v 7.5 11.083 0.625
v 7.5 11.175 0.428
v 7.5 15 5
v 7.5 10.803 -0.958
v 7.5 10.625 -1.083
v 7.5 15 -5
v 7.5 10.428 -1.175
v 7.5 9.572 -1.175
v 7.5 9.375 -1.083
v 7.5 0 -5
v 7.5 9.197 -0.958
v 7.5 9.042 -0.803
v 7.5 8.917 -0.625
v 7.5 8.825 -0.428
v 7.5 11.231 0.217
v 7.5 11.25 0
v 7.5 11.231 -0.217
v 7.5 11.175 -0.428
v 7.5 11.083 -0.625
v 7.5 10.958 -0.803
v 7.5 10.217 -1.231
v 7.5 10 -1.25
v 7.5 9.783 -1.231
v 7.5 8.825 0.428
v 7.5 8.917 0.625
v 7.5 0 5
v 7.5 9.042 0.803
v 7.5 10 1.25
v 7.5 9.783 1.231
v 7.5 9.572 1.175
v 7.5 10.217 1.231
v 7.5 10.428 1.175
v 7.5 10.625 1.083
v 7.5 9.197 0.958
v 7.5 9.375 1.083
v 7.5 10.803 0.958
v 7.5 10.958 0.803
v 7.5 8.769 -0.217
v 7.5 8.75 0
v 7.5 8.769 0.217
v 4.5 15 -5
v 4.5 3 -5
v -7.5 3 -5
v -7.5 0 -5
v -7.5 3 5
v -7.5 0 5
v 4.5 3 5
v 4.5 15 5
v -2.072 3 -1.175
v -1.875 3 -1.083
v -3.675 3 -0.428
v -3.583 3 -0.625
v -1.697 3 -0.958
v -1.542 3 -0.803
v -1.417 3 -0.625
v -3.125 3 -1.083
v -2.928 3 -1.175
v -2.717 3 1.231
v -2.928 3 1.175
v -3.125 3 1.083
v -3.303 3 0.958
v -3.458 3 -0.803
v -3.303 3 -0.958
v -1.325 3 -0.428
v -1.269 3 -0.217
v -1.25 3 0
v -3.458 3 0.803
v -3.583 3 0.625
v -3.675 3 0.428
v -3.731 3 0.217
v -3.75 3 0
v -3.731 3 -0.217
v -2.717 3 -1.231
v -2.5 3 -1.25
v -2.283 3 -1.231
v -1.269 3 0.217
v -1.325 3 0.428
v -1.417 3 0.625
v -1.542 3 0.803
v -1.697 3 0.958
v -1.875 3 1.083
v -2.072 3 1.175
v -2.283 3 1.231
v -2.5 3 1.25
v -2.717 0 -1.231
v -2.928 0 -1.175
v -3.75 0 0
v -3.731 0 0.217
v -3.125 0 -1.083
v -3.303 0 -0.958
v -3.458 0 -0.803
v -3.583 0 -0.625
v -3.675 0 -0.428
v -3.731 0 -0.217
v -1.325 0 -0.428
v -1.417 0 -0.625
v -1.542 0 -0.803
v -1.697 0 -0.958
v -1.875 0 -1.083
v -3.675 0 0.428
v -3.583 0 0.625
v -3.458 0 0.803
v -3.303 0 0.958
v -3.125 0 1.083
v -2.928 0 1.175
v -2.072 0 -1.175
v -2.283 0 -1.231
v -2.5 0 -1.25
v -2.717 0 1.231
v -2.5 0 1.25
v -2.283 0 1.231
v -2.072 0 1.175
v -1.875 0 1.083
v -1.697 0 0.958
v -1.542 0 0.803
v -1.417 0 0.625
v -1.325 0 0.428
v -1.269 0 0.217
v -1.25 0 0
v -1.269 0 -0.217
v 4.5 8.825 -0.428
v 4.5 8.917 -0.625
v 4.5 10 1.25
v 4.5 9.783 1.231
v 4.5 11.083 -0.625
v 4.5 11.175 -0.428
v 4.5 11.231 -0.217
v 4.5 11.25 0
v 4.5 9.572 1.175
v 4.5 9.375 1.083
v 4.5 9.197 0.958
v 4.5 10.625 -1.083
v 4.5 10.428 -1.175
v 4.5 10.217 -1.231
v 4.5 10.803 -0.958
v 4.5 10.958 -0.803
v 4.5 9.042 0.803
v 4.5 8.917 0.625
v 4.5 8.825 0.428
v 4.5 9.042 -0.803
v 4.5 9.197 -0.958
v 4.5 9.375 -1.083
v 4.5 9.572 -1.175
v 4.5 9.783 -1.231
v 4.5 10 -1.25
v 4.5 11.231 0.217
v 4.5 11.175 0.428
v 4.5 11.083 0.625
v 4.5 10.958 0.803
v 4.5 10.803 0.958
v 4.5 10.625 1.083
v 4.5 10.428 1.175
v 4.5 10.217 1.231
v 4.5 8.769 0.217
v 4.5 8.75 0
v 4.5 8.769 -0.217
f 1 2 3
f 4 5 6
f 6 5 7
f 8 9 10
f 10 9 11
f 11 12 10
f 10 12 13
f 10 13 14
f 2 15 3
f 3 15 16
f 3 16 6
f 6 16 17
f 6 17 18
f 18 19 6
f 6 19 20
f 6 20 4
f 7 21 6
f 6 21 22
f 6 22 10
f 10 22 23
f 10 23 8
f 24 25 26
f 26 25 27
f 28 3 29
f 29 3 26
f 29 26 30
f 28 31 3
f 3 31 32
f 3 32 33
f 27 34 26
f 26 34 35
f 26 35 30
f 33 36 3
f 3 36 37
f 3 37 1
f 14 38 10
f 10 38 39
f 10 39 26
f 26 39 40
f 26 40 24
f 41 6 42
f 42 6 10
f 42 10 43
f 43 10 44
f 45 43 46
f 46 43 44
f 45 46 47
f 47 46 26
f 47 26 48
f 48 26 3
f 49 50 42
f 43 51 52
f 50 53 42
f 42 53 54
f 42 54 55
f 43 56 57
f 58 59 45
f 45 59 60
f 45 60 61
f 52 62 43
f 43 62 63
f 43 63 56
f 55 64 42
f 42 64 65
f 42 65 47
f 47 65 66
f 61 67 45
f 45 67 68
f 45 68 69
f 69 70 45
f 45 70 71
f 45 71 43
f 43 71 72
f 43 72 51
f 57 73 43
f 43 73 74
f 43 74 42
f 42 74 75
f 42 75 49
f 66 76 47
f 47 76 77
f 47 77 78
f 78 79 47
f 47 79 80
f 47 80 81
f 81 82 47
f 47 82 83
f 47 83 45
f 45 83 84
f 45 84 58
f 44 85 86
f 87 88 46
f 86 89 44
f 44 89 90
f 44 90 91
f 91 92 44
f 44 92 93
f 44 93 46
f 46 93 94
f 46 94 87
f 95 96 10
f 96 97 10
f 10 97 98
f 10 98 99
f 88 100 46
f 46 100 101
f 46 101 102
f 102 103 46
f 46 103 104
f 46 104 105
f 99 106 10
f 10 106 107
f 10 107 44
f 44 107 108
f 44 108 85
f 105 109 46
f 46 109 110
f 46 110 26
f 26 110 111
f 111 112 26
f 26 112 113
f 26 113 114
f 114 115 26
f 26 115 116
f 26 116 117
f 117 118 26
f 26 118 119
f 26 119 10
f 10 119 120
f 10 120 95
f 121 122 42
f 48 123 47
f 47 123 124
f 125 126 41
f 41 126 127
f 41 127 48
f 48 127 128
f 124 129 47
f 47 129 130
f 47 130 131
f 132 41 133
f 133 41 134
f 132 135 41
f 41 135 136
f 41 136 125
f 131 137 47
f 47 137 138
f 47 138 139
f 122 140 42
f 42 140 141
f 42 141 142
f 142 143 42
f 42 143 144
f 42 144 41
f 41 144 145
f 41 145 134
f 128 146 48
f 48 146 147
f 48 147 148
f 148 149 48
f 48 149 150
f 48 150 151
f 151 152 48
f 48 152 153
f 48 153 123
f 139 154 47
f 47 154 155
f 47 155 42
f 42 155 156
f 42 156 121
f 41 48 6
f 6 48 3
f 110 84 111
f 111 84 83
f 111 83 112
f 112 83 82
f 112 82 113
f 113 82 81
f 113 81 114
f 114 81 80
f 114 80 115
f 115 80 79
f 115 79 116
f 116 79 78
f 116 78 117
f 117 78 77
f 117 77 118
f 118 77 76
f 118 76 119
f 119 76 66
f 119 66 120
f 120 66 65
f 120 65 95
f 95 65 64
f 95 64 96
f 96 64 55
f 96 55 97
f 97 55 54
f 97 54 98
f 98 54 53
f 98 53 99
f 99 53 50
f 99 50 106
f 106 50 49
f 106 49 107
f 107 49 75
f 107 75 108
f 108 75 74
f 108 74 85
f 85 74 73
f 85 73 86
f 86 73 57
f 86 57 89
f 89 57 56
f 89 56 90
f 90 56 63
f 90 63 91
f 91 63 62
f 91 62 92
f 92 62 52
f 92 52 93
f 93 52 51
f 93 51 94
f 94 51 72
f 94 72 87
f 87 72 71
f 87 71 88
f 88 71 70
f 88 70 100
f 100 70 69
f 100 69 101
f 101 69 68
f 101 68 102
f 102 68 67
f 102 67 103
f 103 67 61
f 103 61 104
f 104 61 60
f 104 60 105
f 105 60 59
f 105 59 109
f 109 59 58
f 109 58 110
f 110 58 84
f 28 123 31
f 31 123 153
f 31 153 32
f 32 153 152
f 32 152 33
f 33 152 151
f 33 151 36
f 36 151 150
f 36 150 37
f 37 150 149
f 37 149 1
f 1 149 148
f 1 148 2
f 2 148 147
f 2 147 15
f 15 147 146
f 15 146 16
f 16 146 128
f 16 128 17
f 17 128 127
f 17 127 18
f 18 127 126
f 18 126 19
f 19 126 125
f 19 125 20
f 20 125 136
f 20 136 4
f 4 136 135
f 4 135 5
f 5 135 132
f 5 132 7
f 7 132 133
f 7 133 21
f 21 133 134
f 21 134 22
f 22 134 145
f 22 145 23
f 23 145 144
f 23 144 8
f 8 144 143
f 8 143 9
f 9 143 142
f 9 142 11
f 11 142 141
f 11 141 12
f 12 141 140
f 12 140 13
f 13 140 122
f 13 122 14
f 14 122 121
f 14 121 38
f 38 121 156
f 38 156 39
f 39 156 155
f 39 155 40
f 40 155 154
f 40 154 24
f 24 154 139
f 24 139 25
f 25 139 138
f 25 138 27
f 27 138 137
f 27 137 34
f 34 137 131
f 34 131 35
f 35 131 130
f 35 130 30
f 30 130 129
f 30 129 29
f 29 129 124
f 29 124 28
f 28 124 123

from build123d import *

# Parameters (mm, degrees)
EXTRUDE_1_DEPTH             = 10
HOLE_WIZARD_2_5_2_5_1_D     = 2.5
HOLE_WIZARD_2_5_2_5_1_DEPTH = 15
HOLE_WIZARD_2_5_2_5_2_D     = 2.5
HOLE_WIZARD_2_5_2_5_2_DEPTH = 15


with BuildPart() as part:
    # 草圖1 → 填料-伸長1 (new body)
    with BuildSketch(Plane(origin=(0, 0, -5), x_dir=(-1, 0, 0), z_dir=(0, 0, -1))):
        Polygon((-7.5, 0), (7.5, 0), (7.5, 3), (-4.5, 3), (-4.5, 15), (-7.5, 15), align=None)
    extrude(amount=-EXTRUDE_1_DEPTH)

    # Ø2.5 (2.5) 直徑孔1
    with Locations(Plane(origin=(7.5, 0, 0), x_dir=(0, 0, -1), z_dir=(1, 0, 0))):
        with Locations((0, 10)):
            Hole(HOLE_WIZARD_2_5_2_5_1_D / 2, depth=HOLE_WIZARD_2_5_2_5_1_DEPTH)

    # Ø2.5 (2.5) 直徑孔2
    with Locations(Plane(origin=(0, 0, 0), x_dir=(-1, 0, 0), z_dir=(0, -1, 0))):
        with Locations((2.5, 0)):
            Hole(HOLE_WIZARD_2_5_2_5_2_D / 2, depth=HOLE_WIZARD_2_5_2_5_2_DEPTH)


solid = part.part
